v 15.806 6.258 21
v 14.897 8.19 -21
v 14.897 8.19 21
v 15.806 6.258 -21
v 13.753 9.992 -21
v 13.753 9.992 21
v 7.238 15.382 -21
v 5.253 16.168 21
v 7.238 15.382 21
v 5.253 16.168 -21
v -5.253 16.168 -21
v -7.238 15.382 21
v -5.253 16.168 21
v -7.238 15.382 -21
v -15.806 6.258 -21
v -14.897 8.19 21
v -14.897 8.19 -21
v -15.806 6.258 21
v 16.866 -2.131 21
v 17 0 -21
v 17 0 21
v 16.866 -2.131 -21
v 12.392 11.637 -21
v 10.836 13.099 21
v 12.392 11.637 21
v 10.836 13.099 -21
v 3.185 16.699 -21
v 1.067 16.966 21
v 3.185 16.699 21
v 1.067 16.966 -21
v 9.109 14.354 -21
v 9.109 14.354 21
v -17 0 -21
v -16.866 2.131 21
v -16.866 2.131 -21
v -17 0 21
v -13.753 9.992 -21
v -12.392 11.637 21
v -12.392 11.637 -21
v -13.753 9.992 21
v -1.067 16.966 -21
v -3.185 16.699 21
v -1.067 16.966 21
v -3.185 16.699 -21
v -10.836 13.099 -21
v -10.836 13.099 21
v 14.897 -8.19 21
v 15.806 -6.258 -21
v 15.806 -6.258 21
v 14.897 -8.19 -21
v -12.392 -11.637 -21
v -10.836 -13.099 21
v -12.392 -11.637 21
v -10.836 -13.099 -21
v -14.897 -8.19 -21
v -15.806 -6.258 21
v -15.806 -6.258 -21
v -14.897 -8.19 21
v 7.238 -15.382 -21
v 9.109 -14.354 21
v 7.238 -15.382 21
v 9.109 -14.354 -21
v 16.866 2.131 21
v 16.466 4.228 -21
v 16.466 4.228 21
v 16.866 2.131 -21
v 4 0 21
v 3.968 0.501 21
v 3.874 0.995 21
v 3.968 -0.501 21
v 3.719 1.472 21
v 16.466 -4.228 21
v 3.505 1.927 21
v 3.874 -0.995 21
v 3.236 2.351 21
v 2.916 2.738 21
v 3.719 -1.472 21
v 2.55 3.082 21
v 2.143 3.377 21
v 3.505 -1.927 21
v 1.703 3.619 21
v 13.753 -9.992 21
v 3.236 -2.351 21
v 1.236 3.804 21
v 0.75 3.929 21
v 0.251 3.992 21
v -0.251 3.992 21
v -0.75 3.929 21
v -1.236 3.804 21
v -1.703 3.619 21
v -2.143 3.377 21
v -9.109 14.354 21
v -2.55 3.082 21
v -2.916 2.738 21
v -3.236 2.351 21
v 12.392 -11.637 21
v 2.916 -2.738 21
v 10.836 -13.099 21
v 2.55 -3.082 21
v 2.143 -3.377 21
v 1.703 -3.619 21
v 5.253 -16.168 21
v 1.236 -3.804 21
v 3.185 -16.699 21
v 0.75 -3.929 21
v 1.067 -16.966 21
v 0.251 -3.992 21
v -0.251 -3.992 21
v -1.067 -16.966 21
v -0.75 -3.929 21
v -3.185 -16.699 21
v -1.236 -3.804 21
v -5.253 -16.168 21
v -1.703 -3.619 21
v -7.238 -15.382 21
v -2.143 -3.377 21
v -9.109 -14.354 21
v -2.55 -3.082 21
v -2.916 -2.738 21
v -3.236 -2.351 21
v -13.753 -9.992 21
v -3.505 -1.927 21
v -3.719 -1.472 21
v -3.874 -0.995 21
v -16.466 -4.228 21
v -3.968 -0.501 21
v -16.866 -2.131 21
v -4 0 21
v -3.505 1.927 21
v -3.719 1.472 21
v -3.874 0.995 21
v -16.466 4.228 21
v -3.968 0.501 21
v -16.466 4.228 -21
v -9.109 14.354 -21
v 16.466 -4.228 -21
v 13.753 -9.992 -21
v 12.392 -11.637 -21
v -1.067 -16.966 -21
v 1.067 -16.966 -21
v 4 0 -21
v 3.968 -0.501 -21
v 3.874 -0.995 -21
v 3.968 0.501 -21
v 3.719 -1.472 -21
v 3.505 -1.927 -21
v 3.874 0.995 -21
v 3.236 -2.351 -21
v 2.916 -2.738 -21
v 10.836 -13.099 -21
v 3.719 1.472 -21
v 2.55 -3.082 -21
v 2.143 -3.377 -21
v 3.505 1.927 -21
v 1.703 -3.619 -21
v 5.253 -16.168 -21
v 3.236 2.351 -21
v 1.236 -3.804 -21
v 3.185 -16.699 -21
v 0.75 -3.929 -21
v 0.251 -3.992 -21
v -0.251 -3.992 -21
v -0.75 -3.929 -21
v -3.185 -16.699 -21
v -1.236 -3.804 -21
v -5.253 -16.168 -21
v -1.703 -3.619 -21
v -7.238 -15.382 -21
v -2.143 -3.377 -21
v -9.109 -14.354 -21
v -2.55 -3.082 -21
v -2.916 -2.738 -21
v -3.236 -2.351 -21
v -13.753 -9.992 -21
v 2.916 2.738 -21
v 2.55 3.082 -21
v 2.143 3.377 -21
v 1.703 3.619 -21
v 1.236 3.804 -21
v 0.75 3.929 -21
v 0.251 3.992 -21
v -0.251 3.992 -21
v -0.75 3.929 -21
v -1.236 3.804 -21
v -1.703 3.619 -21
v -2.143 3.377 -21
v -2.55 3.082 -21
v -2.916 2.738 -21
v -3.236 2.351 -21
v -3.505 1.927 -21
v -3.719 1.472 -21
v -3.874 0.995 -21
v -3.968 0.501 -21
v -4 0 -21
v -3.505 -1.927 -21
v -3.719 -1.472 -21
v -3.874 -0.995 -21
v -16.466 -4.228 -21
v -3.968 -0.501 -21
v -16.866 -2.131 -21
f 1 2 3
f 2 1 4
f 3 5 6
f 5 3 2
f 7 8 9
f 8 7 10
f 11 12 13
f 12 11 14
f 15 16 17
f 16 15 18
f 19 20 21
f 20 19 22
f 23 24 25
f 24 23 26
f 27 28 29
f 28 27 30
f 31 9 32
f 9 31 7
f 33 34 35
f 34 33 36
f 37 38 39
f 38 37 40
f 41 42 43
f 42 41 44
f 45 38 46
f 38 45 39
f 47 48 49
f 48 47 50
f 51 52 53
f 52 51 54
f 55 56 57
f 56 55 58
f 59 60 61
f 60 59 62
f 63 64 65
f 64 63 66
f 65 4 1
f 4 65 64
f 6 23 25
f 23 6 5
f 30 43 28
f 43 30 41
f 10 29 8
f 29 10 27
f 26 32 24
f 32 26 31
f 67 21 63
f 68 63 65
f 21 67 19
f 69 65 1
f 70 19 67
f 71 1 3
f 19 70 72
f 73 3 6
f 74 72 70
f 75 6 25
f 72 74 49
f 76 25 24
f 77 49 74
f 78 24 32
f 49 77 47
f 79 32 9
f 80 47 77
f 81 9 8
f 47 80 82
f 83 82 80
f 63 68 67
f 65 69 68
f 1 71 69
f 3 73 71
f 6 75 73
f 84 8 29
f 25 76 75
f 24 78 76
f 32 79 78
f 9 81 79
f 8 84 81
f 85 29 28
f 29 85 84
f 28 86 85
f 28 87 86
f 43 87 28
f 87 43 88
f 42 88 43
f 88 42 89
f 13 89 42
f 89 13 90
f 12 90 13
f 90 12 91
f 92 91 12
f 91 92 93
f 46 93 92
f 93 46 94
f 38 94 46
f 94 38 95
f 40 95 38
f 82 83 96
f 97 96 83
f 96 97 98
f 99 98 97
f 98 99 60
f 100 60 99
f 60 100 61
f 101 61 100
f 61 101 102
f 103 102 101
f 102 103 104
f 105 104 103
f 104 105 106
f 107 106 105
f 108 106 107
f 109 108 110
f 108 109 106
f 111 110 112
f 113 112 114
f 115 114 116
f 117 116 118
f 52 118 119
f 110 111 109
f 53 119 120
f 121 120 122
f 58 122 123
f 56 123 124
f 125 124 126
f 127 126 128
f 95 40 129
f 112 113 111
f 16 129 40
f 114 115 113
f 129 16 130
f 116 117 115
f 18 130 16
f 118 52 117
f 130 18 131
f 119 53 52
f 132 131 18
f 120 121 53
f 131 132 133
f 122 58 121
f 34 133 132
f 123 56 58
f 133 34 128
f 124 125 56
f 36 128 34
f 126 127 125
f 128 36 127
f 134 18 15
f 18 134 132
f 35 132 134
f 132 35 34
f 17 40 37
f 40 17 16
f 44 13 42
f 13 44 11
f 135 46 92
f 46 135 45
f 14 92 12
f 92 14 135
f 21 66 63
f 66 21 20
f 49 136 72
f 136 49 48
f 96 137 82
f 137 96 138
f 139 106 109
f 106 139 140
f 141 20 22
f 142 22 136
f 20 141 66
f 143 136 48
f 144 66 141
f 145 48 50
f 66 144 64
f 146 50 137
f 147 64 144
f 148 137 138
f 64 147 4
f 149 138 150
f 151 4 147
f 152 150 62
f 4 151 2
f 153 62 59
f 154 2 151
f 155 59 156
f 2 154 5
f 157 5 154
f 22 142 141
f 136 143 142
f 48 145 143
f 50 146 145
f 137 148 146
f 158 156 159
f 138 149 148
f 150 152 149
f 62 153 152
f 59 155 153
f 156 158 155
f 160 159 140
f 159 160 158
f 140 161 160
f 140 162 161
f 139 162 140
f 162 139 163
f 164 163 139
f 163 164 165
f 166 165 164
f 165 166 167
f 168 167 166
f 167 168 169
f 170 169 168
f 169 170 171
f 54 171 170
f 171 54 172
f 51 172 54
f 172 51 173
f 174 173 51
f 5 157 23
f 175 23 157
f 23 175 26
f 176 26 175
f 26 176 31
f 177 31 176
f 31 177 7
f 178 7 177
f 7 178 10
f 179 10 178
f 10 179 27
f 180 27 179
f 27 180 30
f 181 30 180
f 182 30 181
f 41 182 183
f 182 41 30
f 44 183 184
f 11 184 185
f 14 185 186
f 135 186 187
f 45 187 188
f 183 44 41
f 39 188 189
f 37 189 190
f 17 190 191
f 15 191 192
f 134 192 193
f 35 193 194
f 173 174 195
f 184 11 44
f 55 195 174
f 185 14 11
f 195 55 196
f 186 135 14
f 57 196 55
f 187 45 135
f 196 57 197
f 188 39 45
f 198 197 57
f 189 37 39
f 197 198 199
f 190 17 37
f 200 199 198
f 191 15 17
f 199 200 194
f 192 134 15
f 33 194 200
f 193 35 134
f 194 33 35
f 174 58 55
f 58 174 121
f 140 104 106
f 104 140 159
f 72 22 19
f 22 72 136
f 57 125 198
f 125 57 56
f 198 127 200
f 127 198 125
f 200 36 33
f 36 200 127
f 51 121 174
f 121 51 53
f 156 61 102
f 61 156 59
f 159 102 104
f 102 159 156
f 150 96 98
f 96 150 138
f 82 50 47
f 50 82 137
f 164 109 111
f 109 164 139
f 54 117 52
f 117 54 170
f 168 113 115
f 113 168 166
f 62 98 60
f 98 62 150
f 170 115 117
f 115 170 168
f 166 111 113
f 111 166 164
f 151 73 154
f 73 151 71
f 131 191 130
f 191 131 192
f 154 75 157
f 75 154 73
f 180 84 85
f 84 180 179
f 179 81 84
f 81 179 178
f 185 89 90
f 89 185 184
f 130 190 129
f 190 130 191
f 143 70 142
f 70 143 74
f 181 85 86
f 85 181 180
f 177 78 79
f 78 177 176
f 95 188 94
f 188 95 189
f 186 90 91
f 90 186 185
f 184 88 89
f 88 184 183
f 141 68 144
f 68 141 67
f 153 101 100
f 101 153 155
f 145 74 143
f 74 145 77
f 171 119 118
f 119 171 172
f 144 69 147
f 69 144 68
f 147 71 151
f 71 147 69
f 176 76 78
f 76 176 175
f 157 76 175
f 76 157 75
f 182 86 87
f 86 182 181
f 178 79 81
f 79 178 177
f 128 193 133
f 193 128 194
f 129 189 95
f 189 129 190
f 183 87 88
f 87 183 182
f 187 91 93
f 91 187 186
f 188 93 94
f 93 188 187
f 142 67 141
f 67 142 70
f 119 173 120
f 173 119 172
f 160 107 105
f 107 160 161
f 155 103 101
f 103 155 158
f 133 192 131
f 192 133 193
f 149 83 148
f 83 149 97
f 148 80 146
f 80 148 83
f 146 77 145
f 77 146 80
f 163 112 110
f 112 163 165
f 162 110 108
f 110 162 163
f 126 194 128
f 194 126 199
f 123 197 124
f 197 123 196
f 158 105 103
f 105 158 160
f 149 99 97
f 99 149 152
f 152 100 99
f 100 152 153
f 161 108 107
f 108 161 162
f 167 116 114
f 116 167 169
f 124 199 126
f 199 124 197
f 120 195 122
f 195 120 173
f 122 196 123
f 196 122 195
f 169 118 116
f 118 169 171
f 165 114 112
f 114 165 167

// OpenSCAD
$fn = 50;


difference() {
	union() {
		translate(v = [0, 0, -21.0000000000]) {
			cylinder(h = 42, r = 17.0000000000);
		}
	}
	union() {
		translate(v = [0, 0, -100.0000000000]) {
			cylinder(h = 200, r = 4);
		}
	}
}
